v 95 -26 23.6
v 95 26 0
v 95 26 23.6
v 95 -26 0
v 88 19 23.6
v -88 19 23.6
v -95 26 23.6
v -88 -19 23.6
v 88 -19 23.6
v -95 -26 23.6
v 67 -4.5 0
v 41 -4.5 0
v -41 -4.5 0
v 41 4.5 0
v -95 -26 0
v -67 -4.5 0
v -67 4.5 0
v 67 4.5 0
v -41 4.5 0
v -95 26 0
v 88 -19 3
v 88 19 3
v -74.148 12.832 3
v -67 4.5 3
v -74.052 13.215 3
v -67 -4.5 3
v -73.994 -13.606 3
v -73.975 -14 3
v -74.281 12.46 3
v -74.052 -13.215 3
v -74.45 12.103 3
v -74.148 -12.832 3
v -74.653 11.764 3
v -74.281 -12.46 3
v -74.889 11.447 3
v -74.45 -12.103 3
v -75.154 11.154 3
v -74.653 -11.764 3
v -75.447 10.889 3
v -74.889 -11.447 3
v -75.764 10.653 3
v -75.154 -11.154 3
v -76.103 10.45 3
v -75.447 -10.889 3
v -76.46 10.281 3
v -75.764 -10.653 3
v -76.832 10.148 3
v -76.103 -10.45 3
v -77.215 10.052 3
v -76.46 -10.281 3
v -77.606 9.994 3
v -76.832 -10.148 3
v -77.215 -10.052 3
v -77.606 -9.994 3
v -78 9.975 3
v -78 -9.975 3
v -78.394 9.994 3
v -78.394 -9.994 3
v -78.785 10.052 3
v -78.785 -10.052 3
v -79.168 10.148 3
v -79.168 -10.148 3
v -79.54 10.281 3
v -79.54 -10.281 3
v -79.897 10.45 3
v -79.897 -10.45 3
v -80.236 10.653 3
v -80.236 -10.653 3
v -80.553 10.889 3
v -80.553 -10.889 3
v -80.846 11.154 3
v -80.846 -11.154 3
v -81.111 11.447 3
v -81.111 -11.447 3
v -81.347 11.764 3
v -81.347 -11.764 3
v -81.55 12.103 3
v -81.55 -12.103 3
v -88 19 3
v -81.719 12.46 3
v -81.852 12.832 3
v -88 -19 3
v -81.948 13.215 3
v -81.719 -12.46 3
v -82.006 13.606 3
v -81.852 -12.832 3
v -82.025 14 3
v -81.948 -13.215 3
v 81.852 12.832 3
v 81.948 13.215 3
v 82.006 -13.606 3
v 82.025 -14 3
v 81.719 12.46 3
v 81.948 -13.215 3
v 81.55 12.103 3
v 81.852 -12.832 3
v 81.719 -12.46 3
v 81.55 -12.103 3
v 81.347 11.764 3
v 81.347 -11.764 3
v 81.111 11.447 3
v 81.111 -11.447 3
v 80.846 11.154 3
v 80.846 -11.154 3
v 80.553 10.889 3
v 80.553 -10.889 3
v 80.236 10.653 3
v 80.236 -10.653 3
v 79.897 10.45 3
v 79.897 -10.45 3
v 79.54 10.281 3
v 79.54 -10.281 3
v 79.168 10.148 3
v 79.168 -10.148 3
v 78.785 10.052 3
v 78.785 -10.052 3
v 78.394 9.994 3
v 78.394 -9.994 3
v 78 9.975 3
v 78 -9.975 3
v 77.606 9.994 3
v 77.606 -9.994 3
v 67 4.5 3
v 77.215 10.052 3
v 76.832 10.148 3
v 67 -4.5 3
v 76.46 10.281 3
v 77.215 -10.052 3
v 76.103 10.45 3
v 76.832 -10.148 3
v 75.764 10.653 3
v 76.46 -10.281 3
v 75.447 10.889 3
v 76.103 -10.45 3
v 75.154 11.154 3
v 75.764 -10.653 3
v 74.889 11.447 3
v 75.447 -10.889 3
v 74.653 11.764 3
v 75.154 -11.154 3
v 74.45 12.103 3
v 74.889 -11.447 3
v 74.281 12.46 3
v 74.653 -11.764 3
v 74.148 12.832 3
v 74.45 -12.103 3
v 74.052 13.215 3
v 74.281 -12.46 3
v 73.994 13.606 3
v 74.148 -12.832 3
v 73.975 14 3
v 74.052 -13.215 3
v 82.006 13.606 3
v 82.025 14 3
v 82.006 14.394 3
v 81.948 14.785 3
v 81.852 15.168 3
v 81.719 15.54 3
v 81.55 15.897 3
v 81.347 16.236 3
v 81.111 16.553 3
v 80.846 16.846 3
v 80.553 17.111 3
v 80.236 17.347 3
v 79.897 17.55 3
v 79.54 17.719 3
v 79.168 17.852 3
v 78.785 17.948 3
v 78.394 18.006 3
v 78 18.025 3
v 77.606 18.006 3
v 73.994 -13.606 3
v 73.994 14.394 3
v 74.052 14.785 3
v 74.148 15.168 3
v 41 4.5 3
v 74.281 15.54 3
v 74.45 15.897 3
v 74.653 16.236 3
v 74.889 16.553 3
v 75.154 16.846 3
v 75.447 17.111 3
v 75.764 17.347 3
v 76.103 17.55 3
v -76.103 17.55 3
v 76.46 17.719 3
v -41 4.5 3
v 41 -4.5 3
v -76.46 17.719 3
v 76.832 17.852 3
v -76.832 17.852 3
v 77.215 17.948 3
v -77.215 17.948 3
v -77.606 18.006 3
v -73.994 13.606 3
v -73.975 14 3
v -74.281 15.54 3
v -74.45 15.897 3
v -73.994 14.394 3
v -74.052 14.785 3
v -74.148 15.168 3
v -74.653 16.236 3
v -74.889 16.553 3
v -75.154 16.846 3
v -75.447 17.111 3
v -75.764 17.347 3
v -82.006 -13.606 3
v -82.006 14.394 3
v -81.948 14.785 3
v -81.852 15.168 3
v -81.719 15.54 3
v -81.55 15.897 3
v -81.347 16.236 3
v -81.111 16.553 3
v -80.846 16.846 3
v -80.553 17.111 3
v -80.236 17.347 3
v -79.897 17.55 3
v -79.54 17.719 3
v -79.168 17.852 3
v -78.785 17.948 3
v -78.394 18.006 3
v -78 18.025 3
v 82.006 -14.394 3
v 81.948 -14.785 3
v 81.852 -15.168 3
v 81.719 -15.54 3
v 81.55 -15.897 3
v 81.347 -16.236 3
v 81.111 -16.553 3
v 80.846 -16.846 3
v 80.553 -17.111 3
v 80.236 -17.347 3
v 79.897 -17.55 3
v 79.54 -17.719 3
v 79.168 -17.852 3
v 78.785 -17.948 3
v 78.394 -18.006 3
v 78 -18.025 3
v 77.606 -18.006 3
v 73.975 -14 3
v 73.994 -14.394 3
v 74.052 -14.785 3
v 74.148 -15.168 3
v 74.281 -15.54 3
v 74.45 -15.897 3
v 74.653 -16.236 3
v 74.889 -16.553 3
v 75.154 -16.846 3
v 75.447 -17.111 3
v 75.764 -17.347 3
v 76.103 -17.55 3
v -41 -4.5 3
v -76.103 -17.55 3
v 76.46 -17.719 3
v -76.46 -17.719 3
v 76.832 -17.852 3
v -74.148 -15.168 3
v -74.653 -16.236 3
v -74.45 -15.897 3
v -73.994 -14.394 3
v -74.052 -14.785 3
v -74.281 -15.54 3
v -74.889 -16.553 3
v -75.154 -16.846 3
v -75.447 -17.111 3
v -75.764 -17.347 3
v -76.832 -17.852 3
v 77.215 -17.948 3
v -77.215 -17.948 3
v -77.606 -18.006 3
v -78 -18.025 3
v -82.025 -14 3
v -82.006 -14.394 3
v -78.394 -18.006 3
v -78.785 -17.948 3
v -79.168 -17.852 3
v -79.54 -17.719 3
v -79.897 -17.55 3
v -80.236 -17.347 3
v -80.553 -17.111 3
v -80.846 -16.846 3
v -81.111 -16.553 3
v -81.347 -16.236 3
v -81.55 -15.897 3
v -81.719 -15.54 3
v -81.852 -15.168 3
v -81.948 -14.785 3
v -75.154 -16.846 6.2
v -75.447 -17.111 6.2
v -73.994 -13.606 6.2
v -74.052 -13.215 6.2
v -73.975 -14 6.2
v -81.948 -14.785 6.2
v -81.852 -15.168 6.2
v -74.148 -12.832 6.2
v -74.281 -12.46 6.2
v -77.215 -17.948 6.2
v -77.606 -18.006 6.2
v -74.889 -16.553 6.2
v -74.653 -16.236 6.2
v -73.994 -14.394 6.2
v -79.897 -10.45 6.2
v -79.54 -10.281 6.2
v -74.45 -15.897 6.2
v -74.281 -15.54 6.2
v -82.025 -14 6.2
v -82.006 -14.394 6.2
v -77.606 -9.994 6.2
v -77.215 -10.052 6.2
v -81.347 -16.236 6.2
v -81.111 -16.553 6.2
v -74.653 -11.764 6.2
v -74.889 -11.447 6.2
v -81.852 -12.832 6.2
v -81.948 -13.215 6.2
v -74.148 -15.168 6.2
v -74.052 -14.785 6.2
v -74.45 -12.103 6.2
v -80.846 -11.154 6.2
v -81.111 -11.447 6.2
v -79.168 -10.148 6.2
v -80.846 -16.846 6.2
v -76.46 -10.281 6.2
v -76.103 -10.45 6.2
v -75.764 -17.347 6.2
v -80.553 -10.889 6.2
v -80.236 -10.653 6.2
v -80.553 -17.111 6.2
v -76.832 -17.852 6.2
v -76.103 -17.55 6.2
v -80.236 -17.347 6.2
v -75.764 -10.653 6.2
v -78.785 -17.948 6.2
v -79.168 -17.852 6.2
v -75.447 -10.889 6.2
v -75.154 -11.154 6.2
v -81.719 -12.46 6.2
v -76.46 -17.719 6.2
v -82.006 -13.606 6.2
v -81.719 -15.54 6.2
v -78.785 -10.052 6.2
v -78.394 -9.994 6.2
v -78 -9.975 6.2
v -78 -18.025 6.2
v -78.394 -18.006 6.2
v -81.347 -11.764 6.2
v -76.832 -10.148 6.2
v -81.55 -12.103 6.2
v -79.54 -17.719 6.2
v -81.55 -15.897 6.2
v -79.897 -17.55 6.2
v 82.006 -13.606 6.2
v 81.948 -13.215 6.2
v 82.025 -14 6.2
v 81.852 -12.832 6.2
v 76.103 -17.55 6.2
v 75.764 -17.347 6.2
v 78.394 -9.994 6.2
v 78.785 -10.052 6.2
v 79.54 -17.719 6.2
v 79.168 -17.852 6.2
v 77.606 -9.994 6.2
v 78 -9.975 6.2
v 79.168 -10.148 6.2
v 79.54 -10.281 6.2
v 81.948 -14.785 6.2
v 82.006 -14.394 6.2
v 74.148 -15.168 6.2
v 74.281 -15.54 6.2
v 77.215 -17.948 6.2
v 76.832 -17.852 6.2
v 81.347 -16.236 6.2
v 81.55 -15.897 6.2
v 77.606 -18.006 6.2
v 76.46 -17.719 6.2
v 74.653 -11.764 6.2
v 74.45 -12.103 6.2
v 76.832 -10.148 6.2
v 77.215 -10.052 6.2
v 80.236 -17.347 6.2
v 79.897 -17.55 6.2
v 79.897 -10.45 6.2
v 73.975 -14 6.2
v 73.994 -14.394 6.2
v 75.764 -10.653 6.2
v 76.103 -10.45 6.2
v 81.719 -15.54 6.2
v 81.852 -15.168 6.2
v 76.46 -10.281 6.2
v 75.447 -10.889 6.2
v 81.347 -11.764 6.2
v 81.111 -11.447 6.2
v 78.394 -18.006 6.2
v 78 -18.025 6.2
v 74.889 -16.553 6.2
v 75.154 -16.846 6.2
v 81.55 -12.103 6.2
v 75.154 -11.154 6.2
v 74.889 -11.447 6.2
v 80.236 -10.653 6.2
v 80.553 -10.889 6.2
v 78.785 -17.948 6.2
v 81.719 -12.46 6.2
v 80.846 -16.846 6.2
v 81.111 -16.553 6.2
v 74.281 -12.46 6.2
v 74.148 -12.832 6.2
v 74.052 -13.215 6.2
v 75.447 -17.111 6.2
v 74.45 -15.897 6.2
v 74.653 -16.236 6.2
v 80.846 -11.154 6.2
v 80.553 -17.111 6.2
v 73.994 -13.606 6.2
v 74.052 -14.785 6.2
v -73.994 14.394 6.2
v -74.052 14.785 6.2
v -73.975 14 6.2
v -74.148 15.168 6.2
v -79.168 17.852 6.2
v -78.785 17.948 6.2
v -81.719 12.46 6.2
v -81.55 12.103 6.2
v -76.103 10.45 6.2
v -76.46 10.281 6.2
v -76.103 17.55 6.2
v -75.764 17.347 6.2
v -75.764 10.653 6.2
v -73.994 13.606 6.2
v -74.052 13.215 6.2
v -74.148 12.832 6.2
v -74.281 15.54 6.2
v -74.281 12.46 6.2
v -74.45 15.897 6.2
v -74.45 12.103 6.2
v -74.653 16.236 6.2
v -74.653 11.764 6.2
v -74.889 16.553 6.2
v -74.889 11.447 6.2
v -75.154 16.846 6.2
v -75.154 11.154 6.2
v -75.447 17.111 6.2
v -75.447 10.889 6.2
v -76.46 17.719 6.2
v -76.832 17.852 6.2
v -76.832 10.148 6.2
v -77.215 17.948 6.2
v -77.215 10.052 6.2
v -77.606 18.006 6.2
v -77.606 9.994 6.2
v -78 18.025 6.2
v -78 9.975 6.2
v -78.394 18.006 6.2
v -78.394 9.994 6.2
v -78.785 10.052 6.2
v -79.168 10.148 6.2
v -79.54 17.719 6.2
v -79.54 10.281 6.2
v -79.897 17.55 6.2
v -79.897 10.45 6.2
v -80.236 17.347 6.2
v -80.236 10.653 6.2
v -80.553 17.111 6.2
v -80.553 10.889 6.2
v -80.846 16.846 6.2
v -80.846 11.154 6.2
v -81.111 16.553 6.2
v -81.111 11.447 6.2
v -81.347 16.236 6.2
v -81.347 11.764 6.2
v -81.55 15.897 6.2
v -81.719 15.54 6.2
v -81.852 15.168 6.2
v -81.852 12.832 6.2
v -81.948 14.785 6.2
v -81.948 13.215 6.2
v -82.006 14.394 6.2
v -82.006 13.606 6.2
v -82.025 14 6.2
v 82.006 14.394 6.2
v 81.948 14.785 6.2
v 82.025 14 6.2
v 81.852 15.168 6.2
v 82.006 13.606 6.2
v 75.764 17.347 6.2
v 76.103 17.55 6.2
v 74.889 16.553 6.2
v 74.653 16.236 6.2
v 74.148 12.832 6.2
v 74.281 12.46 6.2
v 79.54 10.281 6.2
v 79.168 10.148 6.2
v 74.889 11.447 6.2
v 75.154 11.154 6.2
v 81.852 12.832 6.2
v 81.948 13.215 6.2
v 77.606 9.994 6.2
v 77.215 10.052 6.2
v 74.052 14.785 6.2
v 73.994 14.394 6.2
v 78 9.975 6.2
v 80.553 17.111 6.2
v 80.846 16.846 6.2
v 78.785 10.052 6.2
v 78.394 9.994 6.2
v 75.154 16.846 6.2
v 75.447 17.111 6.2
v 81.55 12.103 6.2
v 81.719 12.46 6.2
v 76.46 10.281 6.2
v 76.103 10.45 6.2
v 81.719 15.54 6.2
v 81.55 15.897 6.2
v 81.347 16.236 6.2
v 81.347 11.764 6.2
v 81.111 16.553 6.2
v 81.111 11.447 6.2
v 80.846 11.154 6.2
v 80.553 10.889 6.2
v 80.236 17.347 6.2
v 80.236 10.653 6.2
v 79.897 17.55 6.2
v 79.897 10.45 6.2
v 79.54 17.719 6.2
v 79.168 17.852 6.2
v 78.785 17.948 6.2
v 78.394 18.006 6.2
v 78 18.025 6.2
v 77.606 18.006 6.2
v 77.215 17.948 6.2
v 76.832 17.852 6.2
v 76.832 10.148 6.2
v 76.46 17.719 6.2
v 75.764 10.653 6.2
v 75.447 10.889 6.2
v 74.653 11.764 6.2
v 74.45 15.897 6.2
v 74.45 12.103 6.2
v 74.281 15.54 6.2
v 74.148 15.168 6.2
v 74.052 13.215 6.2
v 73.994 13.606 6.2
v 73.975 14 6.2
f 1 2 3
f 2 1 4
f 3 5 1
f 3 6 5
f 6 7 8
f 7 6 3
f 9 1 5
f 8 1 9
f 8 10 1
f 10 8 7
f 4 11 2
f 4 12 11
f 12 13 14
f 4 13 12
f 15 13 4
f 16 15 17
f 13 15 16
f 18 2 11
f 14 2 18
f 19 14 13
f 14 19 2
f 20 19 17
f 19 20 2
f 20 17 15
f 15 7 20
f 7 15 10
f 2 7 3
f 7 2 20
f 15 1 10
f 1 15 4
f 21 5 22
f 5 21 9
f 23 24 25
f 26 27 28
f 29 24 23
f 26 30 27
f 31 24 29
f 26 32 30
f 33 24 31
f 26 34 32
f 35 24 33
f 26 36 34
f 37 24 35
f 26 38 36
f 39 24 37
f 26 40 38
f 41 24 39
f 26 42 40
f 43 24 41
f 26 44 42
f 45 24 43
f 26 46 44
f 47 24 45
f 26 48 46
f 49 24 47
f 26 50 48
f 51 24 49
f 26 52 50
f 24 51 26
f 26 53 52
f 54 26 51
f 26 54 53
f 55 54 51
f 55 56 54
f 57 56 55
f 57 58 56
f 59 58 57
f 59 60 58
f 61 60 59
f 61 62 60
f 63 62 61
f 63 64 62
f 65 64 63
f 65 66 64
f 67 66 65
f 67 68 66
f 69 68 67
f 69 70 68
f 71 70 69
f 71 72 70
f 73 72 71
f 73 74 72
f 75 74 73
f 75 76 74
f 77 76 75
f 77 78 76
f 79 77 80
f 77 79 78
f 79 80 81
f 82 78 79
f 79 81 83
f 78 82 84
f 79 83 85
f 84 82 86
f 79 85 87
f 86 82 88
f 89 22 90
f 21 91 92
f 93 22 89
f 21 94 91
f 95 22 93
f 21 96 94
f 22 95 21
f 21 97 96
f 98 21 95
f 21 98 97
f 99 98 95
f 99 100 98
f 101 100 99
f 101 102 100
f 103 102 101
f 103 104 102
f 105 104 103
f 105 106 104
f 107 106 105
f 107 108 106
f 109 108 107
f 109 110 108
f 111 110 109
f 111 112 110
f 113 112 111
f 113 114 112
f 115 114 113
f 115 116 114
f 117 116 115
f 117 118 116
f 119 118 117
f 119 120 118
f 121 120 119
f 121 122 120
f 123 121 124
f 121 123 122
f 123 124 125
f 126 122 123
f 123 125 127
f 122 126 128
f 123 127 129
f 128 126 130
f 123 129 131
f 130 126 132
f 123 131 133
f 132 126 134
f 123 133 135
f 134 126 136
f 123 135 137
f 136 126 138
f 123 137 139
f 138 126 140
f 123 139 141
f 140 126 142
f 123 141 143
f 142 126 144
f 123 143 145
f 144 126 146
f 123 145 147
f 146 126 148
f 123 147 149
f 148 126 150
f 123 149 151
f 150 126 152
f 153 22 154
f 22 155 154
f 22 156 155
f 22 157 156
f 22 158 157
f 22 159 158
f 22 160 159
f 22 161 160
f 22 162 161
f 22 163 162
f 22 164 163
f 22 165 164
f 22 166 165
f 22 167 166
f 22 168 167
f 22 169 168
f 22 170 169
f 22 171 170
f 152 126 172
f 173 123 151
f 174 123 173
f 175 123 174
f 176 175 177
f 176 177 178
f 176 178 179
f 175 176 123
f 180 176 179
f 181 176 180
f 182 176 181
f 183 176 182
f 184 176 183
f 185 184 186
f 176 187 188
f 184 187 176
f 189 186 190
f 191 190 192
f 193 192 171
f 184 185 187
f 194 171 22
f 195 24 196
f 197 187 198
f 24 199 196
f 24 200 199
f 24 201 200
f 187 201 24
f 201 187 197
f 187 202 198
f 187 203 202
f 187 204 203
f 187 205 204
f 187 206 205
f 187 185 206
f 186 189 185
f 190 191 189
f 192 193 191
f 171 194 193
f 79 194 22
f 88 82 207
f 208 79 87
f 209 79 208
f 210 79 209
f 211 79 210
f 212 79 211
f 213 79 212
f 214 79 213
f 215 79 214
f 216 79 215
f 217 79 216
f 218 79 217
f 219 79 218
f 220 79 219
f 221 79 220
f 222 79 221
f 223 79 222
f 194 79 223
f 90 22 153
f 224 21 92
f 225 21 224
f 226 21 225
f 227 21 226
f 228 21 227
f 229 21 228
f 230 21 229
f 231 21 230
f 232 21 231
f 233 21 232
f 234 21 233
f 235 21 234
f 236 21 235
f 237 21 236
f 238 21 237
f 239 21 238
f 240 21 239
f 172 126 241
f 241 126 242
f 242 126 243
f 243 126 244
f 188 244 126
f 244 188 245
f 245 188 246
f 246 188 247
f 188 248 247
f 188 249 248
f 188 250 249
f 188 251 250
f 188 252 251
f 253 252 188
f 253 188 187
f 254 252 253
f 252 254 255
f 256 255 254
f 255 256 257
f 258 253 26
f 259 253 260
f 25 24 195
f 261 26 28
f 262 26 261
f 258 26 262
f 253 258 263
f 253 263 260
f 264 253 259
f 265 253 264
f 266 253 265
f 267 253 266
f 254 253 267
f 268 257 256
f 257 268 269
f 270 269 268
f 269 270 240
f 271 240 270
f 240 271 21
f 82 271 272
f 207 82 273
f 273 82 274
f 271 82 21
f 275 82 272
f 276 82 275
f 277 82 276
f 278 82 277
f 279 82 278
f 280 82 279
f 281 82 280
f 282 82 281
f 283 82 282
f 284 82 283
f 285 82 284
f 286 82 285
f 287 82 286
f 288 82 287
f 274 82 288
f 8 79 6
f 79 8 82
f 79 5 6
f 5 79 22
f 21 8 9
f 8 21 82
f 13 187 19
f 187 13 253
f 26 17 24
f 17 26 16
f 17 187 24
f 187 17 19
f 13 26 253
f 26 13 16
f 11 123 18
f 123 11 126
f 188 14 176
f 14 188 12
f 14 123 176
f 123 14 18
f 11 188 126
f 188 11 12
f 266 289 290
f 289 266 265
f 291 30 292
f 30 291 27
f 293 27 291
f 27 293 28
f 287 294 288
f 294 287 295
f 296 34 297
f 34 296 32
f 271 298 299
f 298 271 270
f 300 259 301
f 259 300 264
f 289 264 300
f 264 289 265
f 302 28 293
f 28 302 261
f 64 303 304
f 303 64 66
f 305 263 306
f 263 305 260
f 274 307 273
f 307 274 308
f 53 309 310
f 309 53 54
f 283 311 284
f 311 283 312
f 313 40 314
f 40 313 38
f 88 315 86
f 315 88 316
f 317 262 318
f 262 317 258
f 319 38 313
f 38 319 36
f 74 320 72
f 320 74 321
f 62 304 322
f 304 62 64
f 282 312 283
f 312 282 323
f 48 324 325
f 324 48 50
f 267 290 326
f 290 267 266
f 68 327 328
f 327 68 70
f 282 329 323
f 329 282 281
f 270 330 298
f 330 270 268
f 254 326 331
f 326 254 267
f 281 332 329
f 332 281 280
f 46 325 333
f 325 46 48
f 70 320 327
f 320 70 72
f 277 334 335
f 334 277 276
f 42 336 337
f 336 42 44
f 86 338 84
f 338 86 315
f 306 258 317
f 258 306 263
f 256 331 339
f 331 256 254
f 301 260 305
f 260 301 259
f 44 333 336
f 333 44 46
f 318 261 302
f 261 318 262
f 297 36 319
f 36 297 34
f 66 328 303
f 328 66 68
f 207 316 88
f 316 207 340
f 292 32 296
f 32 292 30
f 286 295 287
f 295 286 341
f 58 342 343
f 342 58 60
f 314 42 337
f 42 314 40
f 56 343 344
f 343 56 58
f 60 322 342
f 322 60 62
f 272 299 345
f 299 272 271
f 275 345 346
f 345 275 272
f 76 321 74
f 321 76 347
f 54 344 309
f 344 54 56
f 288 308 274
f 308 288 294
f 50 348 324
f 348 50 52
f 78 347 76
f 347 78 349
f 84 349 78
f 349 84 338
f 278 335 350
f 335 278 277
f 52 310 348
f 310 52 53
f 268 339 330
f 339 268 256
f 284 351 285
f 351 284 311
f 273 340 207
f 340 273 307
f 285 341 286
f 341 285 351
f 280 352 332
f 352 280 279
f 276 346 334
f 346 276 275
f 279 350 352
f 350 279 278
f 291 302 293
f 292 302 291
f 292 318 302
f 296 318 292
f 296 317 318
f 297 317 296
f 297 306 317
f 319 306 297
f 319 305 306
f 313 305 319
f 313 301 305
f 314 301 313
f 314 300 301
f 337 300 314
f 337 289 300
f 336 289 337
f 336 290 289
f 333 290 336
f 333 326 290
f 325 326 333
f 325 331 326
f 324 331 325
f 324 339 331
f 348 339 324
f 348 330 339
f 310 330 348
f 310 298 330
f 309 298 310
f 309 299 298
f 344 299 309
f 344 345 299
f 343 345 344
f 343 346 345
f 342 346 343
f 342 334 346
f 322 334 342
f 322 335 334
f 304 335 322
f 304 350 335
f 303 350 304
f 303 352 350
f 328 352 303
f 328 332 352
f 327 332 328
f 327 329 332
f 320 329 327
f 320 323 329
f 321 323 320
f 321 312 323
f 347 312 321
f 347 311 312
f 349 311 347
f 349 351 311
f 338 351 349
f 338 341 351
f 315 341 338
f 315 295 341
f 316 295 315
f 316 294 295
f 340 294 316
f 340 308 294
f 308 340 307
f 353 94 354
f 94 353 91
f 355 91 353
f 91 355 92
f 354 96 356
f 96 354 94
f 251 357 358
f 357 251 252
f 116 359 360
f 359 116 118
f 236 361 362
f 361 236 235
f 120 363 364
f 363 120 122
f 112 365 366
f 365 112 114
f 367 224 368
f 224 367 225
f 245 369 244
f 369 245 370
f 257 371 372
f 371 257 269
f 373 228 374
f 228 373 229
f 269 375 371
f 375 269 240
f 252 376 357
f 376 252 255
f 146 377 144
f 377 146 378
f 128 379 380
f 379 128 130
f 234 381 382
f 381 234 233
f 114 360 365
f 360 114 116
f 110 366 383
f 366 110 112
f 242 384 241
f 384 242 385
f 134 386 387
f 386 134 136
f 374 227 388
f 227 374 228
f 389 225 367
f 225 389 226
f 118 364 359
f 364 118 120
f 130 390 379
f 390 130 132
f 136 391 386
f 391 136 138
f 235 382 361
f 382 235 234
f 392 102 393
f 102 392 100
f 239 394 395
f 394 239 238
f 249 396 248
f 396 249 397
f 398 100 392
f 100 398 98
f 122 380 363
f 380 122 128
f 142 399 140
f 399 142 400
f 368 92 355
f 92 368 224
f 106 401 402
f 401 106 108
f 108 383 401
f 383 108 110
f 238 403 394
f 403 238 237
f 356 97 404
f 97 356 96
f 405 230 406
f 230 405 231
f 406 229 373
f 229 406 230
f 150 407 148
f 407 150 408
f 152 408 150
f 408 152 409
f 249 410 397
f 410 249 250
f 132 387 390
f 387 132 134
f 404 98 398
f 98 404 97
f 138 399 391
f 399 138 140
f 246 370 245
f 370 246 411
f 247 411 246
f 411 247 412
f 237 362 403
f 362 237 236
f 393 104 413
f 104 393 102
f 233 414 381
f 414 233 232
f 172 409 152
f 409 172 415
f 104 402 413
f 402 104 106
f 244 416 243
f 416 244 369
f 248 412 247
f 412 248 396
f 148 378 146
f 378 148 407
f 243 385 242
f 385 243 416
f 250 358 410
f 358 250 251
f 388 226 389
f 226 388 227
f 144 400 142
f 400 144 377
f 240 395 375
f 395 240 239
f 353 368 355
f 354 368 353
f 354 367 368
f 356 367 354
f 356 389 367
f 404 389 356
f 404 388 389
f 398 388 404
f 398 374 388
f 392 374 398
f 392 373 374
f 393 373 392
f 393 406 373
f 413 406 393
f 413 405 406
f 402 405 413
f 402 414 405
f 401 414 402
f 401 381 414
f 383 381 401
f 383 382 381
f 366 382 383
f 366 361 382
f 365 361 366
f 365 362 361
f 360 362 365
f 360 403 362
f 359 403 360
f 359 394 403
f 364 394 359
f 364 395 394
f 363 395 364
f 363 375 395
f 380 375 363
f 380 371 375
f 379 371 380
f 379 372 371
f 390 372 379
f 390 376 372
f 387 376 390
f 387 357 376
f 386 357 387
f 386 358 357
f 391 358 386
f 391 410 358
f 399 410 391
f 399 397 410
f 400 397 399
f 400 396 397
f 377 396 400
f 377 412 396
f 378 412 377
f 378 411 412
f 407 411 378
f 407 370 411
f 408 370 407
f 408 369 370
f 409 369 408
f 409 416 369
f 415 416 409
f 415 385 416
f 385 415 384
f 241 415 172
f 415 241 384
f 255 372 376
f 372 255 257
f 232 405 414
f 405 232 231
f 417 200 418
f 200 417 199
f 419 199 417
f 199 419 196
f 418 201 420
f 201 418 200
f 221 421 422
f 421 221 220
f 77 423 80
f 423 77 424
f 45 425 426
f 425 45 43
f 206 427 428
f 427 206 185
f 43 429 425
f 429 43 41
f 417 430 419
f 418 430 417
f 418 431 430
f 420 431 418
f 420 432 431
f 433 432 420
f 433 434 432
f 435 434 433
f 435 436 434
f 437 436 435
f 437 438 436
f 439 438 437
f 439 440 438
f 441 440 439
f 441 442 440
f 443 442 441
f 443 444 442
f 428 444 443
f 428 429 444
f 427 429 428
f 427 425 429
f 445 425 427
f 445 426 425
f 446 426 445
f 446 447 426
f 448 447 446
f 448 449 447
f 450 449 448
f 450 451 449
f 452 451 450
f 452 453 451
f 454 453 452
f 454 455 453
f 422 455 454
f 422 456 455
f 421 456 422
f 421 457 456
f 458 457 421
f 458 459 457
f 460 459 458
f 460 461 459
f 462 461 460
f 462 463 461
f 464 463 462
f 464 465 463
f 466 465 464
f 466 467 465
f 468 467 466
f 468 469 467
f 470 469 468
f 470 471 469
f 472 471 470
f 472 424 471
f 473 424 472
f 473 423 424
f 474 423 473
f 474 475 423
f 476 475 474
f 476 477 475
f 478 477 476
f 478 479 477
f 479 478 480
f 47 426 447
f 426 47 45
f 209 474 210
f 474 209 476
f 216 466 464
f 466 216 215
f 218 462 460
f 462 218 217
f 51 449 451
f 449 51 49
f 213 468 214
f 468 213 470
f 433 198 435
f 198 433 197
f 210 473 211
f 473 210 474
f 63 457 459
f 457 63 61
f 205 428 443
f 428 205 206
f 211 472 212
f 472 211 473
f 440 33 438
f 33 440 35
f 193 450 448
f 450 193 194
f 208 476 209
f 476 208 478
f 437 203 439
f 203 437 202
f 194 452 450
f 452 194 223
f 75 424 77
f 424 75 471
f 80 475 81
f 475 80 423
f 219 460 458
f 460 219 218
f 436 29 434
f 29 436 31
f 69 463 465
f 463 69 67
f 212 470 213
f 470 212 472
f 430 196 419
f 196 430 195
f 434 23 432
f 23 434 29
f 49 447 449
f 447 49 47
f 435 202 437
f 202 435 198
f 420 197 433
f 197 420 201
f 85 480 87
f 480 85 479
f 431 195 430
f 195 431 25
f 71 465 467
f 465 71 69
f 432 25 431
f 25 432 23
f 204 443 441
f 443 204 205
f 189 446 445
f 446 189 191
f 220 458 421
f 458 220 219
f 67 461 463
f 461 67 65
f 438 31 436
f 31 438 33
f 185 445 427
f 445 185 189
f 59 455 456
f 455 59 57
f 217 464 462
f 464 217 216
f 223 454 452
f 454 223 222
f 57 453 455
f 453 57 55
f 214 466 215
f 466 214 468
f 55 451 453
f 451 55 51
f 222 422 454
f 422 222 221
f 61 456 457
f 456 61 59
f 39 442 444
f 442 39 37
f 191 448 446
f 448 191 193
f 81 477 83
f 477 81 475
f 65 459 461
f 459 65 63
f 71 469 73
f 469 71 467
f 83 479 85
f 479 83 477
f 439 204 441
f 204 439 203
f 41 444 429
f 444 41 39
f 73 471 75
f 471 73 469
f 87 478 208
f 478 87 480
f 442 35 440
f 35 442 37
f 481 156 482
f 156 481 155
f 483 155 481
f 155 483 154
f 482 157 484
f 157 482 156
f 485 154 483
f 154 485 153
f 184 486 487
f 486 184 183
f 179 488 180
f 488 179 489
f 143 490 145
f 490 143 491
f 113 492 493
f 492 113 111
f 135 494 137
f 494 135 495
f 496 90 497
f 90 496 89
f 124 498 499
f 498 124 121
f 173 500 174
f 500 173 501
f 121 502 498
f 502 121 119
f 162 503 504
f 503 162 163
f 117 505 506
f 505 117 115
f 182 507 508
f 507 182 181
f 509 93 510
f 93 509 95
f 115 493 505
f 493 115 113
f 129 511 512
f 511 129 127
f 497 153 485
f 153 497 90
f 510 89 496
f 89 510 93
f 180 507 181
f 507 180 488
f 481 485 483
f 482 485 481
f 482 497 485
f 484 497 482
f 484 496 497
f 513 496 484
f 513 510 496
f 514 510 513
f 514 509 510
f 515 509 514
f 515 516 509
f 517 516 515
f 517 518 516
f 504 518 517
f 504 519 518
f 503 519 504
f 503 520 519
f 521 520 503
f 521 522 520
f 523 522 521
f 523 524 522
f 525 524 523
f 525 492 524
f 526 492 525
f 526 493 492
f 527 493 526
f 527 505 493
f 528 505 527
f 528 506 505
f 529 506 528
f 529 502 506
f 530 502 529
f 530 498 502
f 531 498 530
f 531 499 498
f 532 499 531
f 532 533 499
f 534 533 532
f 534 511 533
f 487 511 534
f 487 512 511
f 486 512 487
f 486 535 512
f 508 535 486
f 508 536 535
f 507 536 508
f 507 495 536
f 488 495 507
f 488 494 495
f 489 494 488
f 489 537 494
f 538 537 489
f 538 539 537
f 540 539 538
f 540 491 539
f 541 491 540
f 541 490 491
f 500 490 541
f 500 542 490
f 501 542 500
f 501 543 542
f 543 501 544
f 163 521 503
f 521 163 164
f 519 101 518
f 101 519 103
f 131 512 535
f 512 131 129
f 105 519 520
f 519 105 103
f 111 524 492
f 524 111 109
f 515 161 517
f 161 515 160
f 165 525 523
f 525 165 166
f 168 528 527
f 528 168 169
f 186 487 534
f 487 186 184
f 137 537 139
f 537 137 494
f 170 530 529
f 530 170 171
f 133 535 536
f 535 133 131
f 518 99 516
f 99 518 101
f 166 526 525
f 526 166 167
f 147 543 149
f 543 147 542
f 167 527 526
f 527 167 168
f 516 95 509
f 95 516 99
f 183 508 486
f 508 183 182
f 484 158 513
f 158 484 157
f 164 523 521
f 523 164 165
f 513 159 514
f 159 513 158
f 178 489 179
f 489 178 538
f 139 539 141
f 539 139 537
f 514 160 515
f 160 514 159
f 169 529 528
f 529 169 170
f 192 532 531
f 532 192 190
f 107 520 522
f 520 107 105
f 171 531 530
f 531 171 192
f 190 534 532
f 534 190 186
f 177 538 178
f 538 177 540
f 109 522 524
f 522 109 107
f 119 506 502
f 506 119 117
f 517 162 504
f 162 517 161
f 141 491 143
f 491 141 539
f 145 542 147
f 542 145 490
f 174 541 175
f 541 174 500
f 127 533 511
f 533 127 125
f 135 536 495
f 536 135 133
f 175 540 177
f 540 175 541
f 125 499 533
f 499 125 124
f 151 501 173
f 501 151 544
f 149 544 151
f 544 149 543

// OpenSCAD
// file: 01_kicad_parameters.scad
// KiCad-generated OpenSCAD parameter handoff.
// Source: 01_kicad_mechanical_map.csv and 01_kicad_board.kicad_pcb.
$fn = 64;
board = [176.000, 38.000, 1.600];
enclosure = [190.000, 52.000, 23.600];
wall = 3.000;
lid_clearance = 6.000;

// [reference, kind, x_mm, y_mm, height_mm, keepout_radius_mm, role]
mechanical_features = [
  ["J1", "BUSBAR_POS", -54.000, 0.000, 8.000, 13.000, "connector_window"],
  ["J2", "BUSBAR_NEG", 54.000, 0.000, 8.000, 13.000, "connector_window"],
  ["U1", "CURRENT_SENSOR", 0.000, 0.000, 3.600, 12.000, "component_keepout"],
  ["TP1", "HV_TEST", -12.000, 14.000, 0.200, 3.000, "access_bore"],
  ["TP2", "HV_TEST", 12.000, 14.000, 0.200, 3.000, "access_bore"],
  ["MH1", "MOUNTING_HOLE", -78.000, -14.000, 0.000, 1.750, "standoff_axis"],
  ["MH2", "MOUNTING_HOLE", 78.000, -14.000, 0.000, 1.750, "standoff_axis"],
  ["MH3", "MOUNTING_HOLE", -78.000, 14.000, 0.000, 1.750, "standoff_axis"],
  ["MH4", "MOUNTING_HOLE", 78.000, 14.000, 0.000, 1.750, "standoff_axis"],
];

standoff_axes = [for (f = mechanical_features) if (f[6] == "standoff_axis") [f[2], f[3], f[5], f[0]]];
interface_features = [for (f = mechanical_features) if (f[6] == "connector_window" || f[6] == "access_bore" || f[6] == "antenna_keepout") [f[2], f[3], f[5], f[0], f[6]]];
// main file
// Task 08: High-current busbar insulator carrier
// OpenSCAD stage consumes the KiCad-generated 01_kicad_parameters.scad handoff.
include <01_kicad_parameters.scad>;

module standoff(x, y) {
  translate([x, y, board[2]]) cylinder(d=8.050, h=wall + board[2]);
}
module keepout_window(x, y, r) {
  translate([x, y, enclosure[2]/2]) cube([2*r, wall*3, enclosure[2]], center=true);
}
module enclosure_shell() {
  difference() {
    translate([-enclosure[0]/2, -enclosure[1]/2, 0]) cube(enclosure);
    translate([-board[0]/2, -board[1]/2, wall]) cube([board[0], board[1], enclosure[2]]);
    // J1 BUSBAR_POS side/service keepout
    keepout_window(-54.000, 0.000, 13.000);
    // J2 BUSBAR_NEG side/service keepout
    keepout_window(54.000, 0.000, 13.000);
  }
}
// MH1 copied from KiCad at (-78.000, -14.000)
// MH2 copied from KiCad at (78.000, -14.000)
// MH3 copied from KiCad at (-78.000, 14.000)
// MH4 copied from KiCad at (78.000, 14.000)
union() {
  enclosure_shell();
  standoff(-78.000, -14.000);
  standoff(78.000, -14.000);
  standoff(-78.000, 14.000);
  standoff(78.000, 14.000);
}
